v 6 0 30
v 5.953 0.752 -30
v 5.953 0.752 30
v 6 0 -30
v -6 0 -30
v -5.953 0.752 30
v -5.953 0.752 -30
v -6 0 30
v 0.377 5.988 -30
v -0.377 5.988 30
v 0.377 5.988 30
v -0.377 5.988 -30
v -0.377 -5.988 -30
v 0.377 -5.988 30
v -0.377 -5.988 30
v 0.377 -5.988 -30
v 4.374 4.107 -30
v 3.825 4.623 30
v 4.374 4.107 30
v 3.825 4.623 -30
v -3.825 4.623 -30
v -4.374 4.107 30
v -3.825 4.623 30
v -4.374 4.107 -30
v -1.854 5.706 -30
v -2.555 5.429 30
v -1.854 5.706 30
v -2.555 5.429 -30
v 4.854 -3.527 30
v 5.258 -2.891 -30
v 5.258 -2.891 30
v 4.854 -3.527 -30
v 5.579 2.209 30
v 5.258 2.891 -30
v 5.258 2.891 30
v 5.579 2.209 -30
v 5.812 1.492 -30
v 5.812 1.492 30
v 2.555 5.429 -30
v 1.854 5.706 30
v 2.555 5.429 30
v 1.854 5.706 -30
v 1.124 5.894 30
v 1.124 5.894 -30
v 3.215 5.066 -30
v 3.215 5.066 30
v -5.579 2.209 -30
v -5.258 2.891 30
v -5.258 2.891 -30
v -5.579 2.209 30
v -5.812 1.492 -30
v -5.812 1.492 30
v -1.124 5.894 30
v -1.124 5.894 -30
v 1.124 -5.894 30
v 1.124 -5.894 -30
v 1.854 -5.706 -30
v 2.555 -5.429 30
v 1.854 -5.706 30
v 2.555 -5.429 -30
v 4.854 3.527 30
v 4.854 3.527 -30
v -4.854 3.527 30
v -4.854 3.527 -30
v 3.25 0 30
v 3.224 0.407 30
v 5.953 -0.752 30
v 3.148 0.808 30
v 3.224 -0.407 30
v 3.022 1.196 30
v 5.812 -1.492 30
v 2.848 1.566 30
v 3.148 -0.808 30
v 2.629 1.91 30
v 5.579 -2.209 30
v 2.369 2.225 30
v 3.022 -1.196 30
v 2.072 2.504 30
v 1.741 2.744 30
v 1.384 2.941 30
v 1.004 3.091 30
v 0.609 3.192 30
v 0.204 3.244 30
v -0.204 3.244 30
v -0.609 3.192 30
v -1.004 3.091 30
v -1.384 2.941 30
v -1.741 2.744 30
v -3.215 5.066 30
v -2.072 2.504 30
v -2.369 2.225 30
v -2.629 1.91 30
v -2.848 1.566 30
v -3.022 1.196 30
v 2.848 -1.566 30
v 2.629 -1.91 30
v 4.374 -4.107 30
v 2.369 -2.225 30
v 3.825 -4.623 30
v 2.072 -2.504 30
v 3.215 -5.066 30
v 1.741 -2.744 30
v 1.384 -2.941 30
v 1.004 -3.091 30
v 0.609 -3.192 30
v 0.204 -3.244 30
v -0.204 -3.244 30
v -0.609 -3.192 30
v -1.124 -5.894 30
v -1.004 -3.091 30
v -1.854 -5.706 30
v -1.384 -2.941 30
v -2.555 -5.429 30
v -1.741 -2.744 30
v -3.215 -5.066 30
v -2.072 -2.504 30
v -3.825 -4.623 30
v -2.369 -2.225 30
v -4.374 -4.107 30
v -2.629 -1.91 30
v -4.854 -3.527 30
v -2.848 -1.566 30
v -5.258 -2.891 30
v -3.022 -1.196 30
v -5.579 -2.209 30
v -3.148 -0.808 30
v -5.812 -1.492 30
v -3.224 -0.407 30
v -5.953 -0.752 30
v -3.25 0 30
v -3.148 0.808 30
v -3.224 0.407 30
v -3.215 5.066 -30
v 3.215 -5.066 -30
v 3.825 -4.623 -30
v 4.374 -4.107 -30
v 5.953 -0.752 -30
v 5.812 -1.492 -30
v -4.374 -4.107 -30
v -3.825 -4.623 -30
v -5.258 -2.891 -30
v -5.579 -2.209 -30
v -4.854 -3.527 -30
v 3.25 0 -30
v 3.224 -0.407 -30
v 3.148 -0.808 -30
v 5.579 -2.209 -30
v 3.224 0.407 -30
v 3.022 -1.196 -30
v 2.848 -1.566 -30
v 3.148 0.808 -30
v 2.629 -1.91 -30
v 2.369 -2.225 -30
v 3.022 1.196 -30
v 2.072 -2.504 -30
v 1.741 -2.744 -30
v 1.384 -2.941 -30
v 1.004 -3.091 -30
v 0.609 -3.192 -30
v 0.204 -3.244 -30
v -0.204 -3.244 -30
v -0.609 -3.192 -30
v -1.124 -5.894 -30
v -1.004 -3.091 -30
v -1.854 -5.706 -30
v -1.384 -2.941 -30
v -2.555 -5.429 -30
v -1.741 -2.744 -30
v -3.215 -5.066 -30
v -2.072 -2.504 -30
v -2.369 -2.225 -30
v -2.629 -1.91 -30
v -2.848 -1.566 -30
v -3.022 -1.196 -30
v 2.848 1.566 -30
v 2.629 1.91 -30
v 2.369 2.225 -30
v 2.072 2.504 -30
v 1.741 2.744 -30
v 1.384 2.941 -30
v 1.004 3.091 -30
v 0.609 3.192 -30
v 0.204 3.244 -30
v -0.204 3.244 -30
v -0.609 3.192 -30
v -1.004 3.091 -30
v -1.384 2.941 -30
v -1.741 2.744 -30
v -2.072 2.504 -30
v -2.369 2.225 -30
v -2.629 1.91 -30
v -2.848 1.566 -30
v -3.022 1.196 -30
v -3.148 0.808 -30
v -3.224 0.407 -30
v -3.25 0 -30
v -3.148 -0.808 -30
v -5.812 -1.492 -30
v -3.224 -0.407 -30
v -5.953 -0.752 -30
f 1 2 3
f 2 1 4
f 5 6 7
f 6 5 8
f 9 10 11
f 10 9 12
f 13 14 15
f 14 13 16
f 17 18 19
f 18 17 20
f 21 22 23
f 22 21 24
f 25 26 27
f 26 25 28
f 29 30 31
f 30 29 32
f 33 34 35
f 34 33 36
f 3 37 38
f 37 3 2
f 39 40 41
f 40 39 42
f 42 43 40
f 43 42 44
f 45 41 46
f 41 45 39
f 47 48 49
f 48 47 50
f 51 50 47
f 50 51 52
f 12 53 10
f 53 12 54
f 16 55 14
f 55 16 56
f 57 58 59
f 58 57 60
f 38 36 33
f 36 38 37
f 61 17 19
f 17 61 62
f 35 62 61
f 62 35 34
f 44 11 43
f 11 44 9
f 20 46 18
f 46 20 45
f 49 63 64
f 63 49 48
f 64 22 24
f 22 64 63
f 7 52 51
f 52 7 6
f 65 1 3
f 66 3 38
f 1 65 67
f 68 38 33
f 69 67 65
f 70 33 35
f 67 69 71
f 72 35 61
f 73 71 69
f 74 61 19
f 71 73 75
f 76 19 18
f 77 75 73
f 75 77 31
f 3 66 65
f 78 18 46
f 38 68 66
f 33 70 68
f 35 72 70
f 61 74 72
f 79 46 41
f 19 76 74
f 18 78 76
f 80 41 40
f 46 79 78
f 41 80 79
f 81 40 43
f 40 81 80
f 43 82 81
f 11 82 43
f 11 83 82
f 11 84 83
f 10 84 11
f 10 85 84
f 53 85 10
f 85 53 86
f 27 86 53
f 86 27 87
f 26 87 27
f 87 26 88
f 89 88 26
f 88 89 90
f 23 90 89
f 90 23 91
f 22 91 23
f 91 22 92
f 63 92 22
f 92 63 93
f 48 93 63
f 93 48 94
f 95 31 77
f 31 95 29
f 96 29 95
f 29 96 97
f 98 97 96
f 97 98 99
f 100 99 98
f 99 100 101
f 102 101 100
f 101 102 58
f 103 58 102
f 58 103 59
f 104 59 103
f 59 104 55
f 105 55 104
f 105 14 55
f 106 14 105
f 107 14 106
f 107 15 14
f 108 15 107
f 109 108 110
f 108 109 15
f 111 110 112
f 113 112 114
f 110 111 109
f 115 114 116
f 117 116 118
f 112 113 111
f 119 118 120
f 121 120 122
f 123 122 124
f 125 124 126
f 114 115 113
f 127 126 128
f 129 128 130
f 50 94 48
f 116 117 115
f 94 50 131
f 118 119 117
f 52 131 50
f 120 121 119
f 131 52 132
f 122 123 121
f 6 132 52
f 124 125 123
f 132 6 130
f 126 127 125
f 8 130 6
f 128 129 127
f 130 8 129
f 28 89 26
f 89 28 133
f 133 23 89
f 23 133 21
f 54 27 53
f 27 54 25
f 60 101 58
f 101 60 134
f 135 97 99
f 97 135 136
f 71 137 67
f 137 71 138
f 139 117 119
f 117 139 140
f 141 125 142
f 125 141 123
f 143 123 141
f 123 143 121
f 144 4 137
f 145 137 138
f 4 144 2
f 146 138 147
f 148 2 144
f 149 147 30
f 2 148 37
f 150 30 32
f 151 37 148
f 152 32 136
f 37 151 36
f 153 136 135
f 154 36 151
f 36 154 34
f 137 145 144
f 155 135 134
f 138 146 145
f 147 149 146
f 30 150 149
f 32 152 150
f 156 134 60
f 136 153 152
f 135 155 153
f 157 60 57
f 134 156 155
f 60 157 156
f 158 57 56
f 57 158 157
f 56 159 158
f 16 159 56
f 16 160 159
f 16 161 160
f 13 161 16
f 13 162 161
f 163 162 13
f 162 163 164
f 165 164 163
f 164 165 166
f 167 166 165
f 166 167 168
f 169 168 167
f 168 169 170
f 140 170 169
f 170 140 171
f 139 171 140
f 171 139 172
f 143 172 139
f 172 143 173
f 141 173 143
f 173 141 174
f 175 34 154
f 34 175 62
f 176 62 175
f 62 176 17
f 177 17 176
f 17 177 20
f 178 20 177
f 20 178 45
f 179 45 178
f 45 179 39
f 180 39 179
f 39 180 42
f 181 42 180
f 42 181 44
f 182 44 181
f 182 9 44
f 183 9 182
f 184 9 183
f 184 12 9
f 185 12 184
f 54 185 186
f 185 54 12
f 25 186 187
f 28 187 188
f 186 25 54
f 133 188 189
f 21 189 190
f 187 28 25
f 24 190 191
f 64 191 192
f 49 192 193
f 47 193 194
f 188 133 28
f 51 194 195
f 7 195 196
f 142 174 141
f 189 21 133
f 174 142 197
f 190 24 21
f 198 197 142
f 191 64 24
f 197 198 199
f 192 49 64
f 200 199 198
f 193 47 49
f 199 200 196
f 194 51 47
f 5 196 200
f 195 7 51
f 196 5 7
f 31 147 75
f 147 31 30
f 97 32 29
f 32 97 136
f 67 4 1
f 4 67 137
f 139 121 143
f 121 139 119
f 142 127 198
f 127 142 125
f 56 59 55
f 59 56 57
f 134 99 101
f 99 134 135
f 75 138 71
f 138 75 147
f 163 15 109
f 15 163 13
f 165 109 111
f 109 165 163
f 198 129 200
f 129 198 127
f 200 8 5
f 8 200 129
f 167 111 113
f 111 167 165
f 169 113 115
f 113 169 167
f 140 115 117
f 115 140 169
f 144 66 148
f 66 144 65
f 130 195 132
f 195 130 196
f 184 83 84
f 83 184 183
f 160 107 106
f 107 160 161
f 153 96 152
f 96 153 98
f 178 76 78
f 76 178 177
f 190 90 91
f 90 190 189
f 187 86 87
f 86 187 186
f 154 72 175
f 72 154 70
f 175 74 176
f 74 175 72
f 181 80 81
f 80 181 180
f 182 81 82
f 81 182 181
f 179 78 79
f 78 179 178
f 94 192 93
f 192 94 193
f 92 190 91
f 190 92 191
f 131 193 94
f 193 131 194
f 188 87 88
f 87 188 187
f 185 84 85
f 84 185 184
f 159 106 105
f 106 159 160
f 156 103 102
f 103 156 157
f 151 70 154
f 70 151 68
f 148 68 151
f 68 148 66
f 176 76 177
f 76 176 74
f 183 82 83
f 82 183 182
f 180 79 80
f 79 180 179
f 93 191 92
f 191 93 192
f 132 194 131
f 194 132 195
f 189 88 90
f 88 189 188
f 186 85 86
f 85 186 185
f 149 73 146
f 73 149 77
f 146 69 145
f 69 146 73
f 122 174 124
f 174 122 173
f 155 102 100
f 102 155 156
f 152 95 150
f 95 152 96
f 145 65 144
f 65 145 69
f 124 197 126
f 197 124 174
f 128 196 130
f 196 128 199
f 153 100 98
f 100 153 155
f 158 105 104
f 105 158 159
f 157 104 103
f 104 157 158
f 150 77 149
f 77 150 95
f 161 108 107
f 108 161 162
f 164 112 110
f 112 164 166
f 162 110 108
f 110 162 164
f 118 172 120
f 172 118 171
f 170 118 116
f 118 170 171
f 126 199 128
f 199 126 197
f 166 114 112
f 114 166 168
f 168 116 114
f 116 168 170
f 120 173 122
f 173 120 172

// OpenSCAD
$fn = 50;


difference() {
	union() {
		translate(v = [0, 0, -30.0000000000]) {
			cylinder(h = 60, r = 6.0000000000);
		}
	}
	union() {
		translate(v = [0, 0, -100.0000000000]) {
			cylinder(h = 200, r = 3.2500000000);
		}
	}
}
